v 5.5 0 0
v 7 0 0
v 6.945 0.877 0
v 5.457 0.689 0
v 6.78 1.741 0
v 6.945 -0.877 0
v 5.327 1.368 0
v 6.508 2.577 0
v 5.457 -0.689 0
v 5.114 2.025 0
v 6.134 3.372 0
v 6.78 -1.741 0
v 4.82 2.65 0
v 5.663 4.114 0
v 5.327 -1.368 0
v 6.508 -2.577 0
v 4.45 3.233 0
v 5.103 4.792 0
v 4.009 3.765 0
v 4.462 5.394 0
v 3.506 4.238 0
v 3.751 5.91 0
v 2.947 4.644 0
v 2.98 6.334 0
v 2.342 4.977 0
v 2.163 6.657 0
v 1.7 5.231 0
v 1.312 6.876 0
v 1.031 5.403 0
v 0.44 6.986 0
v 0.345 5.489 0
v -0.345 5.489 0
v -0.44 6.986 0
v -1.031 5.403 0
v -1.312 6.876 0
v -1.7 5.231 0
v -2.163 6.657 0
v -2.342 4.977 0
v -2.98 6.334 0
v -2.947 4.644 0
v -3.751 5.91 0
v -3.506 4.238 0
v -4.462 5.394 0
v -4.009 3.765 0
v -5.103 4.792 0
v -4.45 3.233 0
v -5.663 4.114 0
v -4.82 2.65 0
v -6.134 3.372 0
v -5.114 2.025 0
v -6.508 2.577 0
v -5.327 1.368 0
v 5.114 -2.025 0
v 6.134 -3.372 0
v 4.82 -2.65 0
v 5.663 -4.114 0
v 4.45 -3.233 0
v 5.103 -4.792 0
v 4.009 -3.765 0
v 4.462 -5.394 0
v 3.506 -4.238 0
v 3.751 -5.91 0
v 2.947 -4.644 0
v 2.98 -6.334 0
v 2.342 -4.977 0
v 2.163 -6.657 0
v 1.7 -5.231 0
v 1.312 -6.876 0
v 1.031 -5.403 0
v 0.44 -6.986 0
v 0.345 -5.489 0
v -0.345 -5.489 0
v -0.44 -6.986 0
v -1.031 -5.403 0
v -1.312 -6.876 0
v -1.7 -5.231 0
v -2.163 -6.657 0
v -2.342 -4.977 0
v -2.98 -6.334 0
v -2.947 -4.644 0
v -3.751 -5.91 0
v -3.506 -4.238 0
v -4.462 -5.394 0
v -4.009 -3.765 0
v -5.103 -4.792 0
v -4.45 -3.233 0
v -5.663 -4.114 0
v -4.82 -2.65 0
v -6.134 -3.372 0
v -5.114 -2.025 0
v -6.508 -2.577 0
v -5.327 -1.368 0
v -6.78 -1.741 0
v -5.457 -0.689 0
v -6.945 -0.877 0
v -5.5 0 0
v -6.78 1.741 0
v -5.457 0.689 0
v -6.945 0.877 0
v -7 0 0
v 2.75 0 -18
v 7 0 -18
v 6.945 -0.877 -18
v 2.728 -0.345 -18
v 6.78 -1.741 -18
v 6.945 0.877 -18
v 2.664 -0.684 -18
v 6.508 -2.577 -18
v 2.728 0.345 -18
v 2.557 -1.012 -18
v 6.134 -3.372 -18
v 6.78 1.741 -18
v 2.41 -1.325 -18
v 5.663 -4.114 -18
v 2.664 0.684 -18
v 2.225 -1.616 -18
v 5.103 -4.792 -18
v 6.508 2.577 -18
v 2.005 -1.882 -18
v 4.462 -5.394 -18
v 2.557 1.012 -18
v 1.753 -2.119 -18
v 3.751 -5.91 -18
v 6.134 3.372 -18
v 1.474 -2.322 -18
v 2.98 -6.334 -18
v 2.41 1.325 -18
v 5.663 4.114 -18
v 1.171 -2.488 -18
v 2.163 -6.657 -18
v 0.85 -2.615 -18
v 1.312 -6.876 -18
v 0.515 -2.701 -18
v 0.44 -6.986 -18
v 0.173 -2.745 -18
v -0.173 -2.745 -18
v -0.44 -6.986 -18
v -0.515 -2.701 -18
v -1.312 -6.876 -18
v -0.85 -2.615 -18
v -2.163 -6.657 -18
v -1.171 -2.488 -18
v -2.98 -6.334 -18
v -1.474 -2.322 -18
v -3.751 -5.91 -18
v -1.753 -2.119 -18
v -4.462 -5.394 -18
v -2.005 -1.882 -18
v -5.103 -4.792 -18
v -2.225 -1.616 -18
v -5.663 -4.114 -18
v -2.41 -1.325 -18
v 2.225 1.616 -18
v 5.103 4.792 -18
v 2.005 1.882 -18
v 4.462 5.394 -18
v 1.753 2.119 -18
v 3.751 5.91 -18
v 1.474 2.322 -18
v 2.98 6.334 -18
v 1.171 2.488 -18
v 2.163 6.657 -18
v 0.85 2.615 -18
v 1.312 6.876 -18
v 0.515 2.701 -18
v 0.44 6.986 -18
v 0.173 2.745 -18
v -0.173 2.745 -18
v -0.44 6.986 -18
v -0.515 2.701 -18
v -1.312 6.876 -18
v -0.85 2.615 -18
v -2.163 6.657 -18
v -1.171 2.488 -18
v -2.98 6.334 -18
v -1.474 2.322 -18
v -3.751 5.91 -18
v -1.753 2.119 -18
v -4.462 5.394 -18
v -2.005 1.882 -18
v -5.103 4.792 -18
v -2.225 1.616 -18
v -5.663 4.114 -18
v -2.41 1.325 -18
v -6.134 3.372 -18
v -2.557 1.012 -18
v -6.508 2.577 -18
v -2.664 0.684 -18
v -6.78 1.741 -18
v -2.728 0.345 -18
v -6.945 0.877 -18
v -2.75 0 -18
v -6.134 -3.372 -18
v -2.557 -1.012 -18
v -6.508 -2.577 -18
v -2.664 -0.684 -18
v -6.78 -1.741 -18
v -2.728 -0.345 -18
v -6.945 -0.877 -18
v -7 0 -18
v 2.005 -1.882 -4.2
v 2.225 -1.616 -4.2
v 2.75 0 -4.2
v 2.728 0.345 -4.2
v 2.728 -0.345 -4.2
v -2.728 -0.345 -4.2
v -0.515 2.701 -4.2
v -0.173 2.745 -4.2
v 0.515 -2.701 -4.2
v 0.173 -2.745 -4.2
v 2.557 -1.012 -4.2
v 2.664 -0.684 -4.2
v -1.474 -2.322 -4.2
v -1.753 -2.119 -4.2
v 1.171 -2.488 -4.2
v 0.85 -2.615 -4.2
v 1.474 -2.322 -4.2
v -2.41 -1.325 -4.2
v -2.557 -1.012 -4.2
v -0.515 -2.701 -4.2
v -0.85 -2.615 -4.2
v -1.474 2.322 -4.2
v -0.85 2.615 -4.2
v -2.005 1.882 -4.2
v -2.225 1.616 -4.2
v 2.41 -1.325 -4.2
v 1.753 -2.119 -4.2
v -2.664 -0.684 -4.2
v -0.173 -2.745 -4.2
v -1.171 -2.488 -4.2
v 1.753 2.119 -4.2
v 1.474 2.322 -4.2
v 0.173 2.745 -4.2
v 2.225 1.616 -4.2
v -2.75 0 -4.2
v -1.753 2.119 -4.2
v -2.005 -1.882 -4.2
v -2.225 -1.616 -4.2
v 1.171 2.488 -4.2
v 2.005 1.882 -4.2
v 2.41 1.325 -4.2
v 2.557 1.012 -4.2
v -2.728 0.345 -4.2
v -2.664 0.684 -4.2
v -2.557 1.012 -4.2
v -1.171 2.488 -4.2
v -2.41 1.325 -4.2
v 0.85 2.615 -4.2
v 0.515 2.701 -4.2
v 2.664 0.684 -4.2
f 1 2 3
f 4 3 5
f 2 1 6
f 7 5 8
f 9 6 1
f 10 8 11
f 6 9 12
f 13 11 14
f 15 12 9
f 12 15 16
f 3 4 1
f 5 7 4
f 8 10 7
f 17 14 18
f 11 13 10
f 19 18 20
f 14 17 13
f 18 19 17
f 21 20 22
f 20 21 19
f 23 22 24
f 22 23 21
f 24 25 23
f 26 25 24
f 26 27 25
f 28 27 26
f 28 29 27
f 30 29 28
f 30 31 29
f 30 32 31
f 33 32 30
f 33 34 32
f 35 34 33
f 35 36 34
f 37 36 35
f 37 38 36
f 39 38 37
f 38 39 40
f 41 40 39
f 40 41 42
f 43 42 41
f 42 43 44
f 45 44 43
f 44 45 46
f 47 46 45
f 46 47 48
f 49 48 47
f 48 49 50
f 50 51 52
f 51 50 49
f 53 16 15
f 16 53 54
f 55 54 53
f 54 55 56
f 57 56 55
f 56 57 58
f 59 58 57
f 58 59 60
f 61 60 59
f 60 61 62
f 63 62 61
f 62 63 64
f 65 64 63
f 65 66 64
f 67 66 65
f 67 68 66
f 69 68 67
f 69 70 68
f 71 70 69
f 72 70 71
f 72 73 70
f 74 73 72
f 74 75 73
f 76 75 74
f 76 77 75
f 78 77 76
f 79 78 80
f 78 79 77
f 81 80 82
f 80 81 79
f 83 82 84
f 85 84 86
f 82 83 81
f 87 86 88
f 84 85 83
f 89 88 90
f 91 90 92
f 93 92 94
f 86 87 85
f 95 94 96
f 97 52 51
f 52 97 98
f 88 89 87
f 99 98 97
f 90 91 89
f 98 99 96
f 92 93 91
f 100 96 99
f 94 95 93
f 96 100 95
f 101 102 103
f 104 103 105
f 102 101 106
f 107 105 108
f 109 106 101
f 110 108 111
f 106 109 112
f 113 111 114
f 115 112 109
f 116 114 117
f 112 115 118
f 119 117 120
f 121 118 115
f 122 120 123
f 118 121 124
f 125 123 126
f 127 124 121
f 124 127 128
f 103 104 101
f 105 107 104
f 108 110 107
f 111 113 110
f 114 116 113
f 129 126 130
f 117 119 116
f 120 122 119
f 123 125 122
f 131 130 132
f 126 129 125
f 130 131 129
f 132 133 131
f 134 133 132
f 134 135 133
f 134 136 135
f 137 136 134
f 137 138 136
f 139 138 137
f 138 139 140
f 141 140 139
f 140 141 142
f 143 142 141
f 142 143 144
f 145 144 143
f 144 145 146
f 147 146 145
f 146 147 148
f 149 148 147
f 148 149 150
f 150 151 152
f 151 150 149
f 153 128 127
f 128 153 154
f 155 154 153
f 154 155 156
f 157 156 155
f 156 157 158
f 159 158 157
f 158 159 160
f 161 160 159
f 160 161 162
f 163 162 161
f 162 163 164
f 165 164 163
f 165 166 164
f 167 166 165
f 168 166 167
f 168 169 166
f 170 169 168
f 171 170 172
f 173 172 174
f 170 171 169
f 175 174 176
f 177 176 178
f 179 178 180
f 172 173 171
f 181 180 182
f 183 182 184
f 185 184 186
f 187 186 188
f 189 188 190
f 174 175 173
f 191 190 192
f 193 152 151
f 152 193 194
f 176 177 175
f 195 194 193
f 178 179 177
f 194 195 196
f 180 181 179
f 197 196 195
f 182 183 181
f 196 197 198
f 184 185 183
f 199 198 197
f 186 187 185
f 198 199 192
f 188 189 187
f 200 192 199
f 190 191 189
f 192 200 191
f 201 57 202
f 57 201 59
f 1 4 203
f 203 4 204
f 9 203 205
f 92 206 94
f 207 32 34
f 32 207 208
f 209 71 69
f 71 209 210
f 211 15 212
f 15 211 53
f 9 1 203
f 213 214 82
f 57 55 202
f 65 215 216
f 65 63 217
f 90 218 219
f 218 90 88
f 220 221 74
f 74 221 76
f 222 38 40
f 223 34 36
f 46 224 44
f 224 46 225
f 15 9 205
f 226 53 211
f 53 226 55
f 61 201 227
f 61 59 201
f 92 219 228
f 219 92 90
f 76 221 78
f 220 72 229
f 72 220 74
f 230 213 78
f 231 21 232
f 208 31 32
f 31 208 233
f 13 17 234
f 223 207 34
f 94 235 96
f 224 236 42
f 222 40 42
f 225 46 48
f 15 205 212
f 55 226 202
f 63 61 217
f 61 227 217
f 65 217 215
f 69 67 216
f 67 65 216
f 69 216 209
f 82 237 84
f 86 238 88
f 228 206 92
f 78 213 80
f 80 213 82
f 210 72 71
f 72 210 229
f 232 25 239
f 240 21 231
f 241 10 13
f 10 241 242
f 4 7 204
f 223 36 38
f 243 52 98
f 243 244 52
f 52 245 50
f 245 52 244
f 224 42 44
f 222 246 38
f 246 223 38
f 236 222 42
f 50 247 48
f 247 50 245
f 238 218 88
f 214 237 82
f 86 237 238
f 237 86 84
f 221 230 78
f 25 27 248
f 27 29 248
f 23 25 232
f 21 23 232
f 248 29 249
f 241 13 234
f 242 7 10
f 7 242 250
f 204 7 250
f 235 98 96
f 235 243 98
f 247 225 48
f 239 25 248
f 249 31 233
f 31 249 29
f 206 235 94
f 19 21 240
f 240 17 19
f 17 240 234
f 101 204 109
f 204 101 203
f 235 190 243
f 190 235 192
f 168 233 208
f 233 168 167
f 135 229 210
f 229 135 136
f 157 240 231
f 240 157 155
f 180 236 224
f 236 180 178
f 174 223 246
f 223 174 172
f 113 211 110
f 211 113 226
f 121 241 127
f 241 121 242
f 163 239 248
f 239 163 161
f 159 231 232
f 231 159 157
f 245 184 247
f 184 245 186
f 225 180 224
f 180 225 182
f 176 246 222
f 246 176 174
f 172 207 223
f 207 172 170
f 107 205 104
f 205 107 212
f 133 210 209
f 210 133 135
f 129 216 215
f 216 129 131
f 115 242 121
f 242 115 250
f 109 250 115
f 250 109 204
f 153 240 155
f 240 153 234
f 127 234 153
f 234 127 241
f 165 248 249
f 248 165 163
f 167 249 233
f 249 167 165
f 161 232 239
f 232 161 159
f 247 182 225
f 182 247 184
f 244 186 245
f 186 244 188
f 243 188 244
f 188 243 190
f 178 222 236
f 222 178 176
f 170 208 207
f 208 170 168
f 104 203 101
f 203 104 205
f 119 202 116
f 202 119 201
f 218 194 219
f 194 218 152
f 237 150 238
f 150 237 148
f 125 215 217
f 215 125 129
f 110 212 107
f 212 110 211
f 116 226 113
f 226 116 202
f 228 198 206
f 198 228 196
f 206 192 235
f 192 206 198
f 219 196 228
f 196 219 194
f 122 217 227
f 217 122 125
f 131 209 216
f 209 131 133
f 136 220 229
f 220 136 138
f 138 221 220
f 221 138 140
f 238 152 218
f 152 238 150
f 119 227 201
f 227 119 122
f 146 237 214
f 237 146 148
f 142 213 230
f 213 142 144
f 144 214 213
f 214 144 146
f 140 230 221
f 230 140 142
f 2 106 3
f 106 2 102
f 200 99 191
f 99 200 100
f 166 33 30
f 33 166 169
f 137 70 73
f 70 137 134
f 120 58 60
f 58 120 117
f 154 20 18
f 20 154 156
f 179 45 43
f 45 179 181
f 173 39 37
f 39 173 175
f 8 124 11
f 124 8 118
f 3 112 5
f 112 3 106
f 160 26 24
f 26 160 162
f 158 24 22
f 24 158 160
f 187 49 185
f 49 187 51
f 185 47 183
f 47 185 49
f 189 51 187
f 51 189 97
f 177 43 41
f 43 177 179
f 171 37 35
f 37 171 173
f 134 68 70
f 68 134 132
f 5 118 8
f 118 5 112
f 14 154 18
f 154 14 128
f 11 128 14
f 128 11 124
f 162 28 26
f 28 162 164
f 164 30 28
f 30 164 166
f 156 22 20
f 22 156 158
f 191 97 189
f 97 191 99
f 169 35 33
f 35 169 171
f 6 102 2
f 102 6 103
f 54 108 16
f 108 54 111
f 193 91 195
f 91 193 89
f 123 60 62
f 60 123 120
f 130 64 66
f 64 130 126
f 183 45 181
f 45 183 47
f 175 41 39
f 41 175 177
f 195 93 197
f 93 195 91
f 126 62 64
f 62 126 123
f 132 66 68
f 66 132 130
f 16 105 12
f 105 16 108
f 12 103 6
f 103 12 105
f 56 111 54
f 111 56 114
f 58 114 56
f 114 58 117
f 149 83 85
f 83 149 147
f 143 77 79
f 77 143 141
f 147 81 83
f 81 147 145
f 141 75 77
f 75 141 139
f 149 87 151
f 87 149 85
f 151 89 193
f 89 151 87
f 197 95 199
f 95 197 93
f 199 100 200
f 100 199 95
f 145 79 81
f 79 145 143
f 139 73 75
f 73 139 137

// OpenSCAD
$fn = 50;


difference() {
	union() {
		translate(v = [0, 0, -18.0000000000]) {
			cylinder(h = 18, r = 7.0000000000);
		}
		cylinder(h = 0, r = 13.0000000000);
	}
	union() {
		translate(v = [0, 0, 0]) {
			rotate(a = [0, 0, 0]) {
				difference() {
					union() {
						#translate(v = [0, 0, -18.0000000000]) {
							cylinder(h = 18, r = 2.2500000000);
						}
						#translate(v = [0, 0, -4.2000000000]) {
							cylinder(h = 4.2000000000, r = 7.0000000000, r1 = 2.7500000000, r2 = 5.5000000000);
						}
						#translate(v = [0, 0, -18.0000000000]) {
							cylinder(h = 18, r = 2.7500000000);
						}
						#translate(v = [0, 0, -18.0000000000]) {
							cylinder(h = 18, r = 2.2500000000);
						}
					}
					union();
				}
			}
		}
	}
}
